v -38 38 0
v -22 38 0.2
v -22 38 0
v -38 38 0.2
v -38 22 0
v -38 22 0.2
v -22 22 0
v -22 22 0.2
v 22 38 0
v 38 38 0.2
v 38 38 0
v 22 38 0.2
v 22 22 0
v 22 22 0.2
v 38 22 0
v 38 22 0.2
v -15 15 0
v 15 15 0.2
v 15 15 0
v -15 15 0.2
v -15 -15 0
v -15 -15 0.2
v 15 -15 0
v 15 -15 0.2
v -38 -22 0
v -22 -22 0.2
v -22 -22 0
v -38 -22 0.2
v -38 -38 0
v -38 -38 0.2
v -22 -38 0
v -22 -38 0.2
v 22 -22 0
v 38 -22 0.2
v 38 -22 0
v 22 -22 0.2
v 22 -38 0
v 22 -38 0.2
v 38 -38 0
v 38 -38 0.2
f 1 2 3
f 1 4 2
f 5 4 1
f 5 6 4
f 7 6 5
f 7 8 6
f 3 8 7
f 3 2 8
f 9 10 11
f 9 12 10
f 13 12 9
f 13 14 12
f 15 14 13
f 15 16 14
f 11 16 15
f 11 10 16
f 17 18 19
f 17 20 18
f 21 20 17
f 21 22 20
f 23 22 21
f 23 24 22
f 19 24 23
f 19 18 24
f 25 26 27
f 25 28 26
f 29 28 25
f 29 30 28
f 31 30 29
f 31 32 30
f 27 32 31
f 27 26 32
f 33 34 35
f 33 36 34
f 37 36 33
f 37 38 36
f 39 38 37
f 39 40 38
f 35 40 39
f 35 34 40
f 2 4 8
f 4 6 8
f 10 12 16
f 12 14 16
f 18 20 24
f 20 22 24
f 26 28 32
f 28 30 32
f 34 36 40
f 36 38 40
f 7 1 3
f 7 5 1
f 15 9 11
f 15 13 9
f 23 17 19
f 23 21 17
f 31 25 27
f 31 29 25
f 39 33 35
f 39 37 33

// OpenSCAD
// First-layer test tile — PRINT THIS BEFORE ANYTHING ELSE (~5 min).
// A single 0.2mm layer over a wide area: the only honest way to judge
// Z-offset. Big flat patch in the middle, one pad per corner so you can
// see whether the bed is level as well as whether the height is right.
//
// Good first layer: solid, faintly glossy, lines fused with no gaps, and it
// peels off in one piece. Bad: separate round strands, gaps, or it drags along
// behind the nozzle.

LAYER = 0.2;
SPAN  = 60;   // corner-to-corner spread
PAD   = 16;

linear_extrude(LAYER) {
    square([30, 30], center=true);
    for (x = [-1, 1], y = [-1, 1])
        translate([x * SPAN/2, y * SPAN/2])
            square([PAD, PAD], center=true);
}
